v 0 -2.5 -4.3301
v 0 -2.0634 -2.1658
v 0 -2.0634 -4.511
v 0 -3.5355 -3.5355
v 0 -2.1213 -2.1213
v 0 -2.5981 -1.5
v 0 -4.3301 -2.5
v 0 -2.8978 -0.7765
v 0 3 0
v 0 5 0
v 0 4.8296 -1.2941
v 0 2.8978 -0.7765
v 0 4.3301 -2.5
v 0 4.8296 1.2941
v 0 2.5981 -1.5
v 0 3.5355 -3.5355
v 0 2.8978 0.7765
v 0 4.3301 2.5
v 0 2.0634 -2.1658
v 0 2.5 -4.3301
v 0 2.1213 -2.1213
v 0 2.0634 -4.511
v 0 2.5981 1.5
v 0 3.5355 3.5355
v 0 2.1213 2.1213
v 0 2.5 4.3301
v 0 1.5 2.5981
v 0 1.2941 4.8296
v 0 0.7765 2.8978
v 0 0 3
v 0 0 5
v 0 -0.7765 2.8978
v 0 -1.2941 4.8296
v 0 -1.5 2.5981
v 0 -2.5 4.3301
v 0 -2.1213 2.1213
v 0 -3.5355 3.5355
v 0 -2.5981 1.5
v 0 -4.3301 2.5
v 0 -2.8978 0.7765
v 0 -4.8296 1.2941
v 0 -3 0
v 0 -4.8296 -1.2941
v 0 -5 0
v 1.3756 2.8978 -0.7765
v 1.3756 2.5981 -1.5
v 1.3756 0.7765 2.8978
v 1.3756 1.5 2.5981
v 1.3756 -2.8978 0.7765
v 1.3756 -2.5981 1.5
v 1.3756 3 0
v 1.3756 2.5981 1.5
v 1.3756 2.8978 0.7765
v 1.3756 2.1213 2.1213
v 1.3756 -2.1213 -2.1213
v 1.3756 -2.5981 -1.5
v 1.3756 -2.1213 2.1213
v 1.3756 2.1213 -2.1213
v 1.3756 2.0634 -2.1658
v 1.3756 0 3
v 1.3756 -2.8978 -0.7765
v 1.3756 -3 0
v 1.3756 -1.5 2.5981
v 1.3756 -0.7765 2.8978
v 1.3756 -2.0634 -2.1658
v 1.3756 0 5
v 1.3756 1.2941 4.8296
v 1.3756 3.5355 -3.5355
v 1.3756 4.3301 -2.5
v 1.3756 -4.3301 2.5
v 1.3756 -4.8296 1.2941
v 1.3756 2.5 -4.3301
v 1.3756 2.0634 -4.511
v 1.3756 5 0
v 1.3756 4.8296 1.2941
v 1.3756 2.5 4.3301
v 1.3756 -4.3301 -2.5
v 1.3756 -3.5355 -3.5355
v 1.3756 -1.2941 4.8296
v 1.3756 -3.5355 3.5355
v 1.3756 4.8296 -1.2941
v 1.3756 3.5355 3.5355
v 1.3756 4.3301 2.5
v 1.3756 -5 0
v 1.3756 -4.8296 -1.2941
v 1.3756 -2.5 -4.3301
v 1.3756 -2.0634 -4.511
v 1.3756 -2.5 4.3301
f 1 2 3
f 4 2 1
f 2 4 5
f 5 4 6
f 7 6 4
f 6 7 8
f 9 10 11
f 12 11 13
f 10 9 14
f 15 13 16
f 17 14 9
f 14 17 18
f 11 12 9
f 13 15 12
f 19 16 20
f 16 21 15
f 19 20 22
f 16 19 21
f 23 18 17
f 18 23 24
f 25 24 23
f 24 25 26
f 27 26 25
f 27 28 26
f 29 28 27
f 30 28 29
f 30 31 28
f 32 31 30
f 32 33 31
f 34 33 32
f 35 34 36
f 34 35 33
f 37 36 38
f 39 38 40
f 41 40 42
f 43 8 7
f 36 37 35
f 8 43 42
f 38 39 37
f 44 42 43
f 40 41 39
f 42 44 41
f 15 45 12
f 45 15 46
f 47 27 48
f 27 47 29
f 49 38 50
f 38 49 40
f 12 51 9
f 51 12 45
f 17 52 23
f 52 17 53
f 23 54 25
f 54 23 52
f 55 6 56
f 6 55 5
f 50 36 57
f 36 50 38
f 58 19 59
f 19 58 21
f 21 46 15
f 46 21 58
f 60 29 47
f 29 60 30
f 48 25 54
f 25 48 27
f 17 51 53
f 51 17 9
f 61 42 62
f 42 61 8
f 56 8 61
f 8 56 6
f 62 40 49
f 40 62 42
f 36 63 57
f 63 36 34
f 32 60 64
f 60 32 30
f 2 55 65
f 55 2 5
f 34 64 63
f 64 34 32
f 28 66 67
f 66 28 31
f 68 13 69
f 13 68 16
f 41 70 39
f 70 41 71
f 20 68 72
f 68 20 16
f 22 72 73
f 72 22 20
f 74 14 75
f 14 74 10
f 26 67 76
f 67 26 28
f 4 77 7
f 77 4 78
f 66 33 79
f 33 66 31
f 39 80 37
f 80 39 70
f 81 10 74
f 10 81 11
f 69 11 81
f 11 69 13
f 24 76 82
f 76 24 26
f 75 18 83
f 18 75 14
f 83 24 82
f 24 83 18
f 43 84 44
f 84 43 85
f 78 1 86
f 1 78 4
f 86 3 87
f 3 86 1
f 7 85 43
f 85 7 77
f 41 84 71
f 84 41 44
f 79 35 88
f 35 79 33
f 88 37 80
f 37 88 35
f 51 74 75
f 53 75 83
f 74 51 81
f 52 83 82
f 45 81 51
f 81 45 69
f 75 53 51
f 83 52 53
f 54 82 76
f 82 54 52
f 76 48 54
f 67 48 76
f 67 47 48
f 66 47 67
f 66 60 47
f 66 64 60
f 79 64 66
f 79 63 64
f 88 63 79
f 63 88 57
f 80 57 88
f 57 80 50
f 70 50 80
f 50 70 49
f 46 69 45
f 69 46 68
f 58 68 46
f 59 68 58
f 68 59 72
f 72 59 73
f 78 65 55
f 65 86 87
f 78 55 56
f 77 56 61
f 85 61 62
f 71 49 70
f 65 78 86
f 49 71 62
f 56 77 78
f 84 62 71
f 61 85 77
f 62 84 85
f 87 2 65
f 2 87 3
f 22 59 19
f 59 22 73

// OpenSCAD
// file: ../build_environments.scad
// build_environments.scad: modules to build level sections
//

module pool(diameter=10.0, wall_height=2.0, step_width=3.0, connections=[])
{
    difference() {
        union() {
        difference() {
            cylinder(h=0.5,r1=diameter+step_width,r2=diameter+step_width,$fn=48);
            translate([0,0,-0.1])
                cylinder(h=0.7,r1=diameter,r2=diameter,$fn=48);
        }
        difference() {
            cylinder(h=wall_height,r1=diameter+step_width+1.0,r2=diameter+step_width+1.0,$fn=48);
            translate([0,0,-0.1])
                cylinder(h=wall_height+0.2,r1=diameter+step_width,r2=diameter+step_width,$fn=48);
        }
        }
    
        for (c = connections)
        {
            rotate([0,90,0]) {
                angle = atan2(c[1],c[0]);
                rotate([-angle,0,0]) {
                    cylinder(h=diameter+5.0,r1=c[2],r2=c[2],$fn=48);
                }
            }
        }
    }
}

module straight(length=10.0, width=2.0, dy1=0.0, dy2=0.0, dz=0.0)
{
    dims = [0, 0, 0, 0, 0, (dz/length)];
    matrix = [
        [ 1, dims[0], dims[1], 0 ],
        [ dims[2], 1, dims[4], 0 ],
        [ dims[5], dims[3], 1, 0 ],
        [ 0, 0, 0, 1 ]
    ];
    multmatrix(matrix)
    difference() {
        translate([dy1,0,0])
        union() {
            rotate([0,90,0]) {
                difference() {
                    cylinder(h=(length-dy1-dy2),r1=width+1.0,r2=width+1.0,$fn=24);
                    translate([0,0,-0.1])
                        cylinder(h=(length-dy1-dy2+0.2),r1=width,r2=width,$fn=24);
                }
                difference() {
                    cylinder(h=1.0,r1=width+2.0,r2=width+2.0,$fn=24);
                    translate([0,0,-0.1])
                        cylinder(h=1.2,r1=width,r2=width,$fn=24);
                }
                translate([0,0,(length-dy1-dy2)-1.0]) {
                    difference() {
                        cylinder(h=1.0,r1=width+2.0,r2=width+2.0,$fn=24);
                        translate([0,0,-0.1])
                            cylinder(h=1.2,r1=width,r2=width,$fn=24);
                    }
                }
            }
        }
        translate([0,0,-(2*width+4.0)/2])
            cube([3*length,3*length,2*width+4.0],center=true);
    }
}

module curve(p0=[0,0], center=[0,0], dir=1, angle=0.0, width=2.0)
{
    radius = sqrt((p0[0]-center[0])*(p0[0]-center[0]) + (p0[1]-center[1])*(p0[1]-center[1]));
    if (dir == 0) {
        difference() {
            rotate([0,0,-90])
            difference() {
                rotate_extrude(angle = angle, convexity = 10, $fn=32)
                    translate([radius, 0, 0])
                        circle(r = width+1.0,$fn=24);
                rotate([0,0,-1.0])
                    rotate_extrude(angle = angle+2.0, convexity = 10, $fn=32)
                        translate([radius, 0, 0])
                            circle(r = width,$fn=24);
            }
            translate([0,0,-(2*width+4.0)/2])
                cube([5*radius,5*radius,2*width+4.0],center=true);
        }
    }
    else {
        difference() {
            rotate([0,0,90])
            difference() {
                rotate_extrude(angle = -angle, convexity = 10, $fn=32)
                    translate([radius, 0, 0])
                        circle(r = width+1.0,$fn=24);
                rotate([0,0,1.0])
                    rotate_extrude(angle = -angle-2.0, convexity = 10, $fn=32)
                        translate([radius, 0, 0])
                            circle(r = width,$fn=24);
            }
            translate([0,0,-(2*width+4.0)/2])
                cube([5*radius,5*radius,2*width+4.0],center=true);
        }
    }

}

// test pool
//pool(diameter=12.0000, wall_height=3.0000, step_width=3.0000, connections=[[0.0000,-26.0000,2.0000], [23.6074,0.0000,2.0000]]);

// test straight, slope
//straight(length=26.0000, width=2.0000, dy1=11.8322, dy2=6.7082, dz=0.0000);
//straight(length=29.1549, width=12.0000, dy1=0.0000, dy2=0.0000, dz=-15.0000);

// test curve
//curve(p0=[23.6074, 0.0000], center=[23.6074, 5.0000], dir=0, angle=60.1011, width=2.0000);
//curve(p0=[33.6426, 12.4219], center=[37.9771, 9.9295], dir=1, angle=120.4627, width=2.0000);
// main file
use <../build_environments.scad>;
straight(length=1.3756, width=3.0000, dy1=0.0000, dy2=0.0000, dz=0.0000);
